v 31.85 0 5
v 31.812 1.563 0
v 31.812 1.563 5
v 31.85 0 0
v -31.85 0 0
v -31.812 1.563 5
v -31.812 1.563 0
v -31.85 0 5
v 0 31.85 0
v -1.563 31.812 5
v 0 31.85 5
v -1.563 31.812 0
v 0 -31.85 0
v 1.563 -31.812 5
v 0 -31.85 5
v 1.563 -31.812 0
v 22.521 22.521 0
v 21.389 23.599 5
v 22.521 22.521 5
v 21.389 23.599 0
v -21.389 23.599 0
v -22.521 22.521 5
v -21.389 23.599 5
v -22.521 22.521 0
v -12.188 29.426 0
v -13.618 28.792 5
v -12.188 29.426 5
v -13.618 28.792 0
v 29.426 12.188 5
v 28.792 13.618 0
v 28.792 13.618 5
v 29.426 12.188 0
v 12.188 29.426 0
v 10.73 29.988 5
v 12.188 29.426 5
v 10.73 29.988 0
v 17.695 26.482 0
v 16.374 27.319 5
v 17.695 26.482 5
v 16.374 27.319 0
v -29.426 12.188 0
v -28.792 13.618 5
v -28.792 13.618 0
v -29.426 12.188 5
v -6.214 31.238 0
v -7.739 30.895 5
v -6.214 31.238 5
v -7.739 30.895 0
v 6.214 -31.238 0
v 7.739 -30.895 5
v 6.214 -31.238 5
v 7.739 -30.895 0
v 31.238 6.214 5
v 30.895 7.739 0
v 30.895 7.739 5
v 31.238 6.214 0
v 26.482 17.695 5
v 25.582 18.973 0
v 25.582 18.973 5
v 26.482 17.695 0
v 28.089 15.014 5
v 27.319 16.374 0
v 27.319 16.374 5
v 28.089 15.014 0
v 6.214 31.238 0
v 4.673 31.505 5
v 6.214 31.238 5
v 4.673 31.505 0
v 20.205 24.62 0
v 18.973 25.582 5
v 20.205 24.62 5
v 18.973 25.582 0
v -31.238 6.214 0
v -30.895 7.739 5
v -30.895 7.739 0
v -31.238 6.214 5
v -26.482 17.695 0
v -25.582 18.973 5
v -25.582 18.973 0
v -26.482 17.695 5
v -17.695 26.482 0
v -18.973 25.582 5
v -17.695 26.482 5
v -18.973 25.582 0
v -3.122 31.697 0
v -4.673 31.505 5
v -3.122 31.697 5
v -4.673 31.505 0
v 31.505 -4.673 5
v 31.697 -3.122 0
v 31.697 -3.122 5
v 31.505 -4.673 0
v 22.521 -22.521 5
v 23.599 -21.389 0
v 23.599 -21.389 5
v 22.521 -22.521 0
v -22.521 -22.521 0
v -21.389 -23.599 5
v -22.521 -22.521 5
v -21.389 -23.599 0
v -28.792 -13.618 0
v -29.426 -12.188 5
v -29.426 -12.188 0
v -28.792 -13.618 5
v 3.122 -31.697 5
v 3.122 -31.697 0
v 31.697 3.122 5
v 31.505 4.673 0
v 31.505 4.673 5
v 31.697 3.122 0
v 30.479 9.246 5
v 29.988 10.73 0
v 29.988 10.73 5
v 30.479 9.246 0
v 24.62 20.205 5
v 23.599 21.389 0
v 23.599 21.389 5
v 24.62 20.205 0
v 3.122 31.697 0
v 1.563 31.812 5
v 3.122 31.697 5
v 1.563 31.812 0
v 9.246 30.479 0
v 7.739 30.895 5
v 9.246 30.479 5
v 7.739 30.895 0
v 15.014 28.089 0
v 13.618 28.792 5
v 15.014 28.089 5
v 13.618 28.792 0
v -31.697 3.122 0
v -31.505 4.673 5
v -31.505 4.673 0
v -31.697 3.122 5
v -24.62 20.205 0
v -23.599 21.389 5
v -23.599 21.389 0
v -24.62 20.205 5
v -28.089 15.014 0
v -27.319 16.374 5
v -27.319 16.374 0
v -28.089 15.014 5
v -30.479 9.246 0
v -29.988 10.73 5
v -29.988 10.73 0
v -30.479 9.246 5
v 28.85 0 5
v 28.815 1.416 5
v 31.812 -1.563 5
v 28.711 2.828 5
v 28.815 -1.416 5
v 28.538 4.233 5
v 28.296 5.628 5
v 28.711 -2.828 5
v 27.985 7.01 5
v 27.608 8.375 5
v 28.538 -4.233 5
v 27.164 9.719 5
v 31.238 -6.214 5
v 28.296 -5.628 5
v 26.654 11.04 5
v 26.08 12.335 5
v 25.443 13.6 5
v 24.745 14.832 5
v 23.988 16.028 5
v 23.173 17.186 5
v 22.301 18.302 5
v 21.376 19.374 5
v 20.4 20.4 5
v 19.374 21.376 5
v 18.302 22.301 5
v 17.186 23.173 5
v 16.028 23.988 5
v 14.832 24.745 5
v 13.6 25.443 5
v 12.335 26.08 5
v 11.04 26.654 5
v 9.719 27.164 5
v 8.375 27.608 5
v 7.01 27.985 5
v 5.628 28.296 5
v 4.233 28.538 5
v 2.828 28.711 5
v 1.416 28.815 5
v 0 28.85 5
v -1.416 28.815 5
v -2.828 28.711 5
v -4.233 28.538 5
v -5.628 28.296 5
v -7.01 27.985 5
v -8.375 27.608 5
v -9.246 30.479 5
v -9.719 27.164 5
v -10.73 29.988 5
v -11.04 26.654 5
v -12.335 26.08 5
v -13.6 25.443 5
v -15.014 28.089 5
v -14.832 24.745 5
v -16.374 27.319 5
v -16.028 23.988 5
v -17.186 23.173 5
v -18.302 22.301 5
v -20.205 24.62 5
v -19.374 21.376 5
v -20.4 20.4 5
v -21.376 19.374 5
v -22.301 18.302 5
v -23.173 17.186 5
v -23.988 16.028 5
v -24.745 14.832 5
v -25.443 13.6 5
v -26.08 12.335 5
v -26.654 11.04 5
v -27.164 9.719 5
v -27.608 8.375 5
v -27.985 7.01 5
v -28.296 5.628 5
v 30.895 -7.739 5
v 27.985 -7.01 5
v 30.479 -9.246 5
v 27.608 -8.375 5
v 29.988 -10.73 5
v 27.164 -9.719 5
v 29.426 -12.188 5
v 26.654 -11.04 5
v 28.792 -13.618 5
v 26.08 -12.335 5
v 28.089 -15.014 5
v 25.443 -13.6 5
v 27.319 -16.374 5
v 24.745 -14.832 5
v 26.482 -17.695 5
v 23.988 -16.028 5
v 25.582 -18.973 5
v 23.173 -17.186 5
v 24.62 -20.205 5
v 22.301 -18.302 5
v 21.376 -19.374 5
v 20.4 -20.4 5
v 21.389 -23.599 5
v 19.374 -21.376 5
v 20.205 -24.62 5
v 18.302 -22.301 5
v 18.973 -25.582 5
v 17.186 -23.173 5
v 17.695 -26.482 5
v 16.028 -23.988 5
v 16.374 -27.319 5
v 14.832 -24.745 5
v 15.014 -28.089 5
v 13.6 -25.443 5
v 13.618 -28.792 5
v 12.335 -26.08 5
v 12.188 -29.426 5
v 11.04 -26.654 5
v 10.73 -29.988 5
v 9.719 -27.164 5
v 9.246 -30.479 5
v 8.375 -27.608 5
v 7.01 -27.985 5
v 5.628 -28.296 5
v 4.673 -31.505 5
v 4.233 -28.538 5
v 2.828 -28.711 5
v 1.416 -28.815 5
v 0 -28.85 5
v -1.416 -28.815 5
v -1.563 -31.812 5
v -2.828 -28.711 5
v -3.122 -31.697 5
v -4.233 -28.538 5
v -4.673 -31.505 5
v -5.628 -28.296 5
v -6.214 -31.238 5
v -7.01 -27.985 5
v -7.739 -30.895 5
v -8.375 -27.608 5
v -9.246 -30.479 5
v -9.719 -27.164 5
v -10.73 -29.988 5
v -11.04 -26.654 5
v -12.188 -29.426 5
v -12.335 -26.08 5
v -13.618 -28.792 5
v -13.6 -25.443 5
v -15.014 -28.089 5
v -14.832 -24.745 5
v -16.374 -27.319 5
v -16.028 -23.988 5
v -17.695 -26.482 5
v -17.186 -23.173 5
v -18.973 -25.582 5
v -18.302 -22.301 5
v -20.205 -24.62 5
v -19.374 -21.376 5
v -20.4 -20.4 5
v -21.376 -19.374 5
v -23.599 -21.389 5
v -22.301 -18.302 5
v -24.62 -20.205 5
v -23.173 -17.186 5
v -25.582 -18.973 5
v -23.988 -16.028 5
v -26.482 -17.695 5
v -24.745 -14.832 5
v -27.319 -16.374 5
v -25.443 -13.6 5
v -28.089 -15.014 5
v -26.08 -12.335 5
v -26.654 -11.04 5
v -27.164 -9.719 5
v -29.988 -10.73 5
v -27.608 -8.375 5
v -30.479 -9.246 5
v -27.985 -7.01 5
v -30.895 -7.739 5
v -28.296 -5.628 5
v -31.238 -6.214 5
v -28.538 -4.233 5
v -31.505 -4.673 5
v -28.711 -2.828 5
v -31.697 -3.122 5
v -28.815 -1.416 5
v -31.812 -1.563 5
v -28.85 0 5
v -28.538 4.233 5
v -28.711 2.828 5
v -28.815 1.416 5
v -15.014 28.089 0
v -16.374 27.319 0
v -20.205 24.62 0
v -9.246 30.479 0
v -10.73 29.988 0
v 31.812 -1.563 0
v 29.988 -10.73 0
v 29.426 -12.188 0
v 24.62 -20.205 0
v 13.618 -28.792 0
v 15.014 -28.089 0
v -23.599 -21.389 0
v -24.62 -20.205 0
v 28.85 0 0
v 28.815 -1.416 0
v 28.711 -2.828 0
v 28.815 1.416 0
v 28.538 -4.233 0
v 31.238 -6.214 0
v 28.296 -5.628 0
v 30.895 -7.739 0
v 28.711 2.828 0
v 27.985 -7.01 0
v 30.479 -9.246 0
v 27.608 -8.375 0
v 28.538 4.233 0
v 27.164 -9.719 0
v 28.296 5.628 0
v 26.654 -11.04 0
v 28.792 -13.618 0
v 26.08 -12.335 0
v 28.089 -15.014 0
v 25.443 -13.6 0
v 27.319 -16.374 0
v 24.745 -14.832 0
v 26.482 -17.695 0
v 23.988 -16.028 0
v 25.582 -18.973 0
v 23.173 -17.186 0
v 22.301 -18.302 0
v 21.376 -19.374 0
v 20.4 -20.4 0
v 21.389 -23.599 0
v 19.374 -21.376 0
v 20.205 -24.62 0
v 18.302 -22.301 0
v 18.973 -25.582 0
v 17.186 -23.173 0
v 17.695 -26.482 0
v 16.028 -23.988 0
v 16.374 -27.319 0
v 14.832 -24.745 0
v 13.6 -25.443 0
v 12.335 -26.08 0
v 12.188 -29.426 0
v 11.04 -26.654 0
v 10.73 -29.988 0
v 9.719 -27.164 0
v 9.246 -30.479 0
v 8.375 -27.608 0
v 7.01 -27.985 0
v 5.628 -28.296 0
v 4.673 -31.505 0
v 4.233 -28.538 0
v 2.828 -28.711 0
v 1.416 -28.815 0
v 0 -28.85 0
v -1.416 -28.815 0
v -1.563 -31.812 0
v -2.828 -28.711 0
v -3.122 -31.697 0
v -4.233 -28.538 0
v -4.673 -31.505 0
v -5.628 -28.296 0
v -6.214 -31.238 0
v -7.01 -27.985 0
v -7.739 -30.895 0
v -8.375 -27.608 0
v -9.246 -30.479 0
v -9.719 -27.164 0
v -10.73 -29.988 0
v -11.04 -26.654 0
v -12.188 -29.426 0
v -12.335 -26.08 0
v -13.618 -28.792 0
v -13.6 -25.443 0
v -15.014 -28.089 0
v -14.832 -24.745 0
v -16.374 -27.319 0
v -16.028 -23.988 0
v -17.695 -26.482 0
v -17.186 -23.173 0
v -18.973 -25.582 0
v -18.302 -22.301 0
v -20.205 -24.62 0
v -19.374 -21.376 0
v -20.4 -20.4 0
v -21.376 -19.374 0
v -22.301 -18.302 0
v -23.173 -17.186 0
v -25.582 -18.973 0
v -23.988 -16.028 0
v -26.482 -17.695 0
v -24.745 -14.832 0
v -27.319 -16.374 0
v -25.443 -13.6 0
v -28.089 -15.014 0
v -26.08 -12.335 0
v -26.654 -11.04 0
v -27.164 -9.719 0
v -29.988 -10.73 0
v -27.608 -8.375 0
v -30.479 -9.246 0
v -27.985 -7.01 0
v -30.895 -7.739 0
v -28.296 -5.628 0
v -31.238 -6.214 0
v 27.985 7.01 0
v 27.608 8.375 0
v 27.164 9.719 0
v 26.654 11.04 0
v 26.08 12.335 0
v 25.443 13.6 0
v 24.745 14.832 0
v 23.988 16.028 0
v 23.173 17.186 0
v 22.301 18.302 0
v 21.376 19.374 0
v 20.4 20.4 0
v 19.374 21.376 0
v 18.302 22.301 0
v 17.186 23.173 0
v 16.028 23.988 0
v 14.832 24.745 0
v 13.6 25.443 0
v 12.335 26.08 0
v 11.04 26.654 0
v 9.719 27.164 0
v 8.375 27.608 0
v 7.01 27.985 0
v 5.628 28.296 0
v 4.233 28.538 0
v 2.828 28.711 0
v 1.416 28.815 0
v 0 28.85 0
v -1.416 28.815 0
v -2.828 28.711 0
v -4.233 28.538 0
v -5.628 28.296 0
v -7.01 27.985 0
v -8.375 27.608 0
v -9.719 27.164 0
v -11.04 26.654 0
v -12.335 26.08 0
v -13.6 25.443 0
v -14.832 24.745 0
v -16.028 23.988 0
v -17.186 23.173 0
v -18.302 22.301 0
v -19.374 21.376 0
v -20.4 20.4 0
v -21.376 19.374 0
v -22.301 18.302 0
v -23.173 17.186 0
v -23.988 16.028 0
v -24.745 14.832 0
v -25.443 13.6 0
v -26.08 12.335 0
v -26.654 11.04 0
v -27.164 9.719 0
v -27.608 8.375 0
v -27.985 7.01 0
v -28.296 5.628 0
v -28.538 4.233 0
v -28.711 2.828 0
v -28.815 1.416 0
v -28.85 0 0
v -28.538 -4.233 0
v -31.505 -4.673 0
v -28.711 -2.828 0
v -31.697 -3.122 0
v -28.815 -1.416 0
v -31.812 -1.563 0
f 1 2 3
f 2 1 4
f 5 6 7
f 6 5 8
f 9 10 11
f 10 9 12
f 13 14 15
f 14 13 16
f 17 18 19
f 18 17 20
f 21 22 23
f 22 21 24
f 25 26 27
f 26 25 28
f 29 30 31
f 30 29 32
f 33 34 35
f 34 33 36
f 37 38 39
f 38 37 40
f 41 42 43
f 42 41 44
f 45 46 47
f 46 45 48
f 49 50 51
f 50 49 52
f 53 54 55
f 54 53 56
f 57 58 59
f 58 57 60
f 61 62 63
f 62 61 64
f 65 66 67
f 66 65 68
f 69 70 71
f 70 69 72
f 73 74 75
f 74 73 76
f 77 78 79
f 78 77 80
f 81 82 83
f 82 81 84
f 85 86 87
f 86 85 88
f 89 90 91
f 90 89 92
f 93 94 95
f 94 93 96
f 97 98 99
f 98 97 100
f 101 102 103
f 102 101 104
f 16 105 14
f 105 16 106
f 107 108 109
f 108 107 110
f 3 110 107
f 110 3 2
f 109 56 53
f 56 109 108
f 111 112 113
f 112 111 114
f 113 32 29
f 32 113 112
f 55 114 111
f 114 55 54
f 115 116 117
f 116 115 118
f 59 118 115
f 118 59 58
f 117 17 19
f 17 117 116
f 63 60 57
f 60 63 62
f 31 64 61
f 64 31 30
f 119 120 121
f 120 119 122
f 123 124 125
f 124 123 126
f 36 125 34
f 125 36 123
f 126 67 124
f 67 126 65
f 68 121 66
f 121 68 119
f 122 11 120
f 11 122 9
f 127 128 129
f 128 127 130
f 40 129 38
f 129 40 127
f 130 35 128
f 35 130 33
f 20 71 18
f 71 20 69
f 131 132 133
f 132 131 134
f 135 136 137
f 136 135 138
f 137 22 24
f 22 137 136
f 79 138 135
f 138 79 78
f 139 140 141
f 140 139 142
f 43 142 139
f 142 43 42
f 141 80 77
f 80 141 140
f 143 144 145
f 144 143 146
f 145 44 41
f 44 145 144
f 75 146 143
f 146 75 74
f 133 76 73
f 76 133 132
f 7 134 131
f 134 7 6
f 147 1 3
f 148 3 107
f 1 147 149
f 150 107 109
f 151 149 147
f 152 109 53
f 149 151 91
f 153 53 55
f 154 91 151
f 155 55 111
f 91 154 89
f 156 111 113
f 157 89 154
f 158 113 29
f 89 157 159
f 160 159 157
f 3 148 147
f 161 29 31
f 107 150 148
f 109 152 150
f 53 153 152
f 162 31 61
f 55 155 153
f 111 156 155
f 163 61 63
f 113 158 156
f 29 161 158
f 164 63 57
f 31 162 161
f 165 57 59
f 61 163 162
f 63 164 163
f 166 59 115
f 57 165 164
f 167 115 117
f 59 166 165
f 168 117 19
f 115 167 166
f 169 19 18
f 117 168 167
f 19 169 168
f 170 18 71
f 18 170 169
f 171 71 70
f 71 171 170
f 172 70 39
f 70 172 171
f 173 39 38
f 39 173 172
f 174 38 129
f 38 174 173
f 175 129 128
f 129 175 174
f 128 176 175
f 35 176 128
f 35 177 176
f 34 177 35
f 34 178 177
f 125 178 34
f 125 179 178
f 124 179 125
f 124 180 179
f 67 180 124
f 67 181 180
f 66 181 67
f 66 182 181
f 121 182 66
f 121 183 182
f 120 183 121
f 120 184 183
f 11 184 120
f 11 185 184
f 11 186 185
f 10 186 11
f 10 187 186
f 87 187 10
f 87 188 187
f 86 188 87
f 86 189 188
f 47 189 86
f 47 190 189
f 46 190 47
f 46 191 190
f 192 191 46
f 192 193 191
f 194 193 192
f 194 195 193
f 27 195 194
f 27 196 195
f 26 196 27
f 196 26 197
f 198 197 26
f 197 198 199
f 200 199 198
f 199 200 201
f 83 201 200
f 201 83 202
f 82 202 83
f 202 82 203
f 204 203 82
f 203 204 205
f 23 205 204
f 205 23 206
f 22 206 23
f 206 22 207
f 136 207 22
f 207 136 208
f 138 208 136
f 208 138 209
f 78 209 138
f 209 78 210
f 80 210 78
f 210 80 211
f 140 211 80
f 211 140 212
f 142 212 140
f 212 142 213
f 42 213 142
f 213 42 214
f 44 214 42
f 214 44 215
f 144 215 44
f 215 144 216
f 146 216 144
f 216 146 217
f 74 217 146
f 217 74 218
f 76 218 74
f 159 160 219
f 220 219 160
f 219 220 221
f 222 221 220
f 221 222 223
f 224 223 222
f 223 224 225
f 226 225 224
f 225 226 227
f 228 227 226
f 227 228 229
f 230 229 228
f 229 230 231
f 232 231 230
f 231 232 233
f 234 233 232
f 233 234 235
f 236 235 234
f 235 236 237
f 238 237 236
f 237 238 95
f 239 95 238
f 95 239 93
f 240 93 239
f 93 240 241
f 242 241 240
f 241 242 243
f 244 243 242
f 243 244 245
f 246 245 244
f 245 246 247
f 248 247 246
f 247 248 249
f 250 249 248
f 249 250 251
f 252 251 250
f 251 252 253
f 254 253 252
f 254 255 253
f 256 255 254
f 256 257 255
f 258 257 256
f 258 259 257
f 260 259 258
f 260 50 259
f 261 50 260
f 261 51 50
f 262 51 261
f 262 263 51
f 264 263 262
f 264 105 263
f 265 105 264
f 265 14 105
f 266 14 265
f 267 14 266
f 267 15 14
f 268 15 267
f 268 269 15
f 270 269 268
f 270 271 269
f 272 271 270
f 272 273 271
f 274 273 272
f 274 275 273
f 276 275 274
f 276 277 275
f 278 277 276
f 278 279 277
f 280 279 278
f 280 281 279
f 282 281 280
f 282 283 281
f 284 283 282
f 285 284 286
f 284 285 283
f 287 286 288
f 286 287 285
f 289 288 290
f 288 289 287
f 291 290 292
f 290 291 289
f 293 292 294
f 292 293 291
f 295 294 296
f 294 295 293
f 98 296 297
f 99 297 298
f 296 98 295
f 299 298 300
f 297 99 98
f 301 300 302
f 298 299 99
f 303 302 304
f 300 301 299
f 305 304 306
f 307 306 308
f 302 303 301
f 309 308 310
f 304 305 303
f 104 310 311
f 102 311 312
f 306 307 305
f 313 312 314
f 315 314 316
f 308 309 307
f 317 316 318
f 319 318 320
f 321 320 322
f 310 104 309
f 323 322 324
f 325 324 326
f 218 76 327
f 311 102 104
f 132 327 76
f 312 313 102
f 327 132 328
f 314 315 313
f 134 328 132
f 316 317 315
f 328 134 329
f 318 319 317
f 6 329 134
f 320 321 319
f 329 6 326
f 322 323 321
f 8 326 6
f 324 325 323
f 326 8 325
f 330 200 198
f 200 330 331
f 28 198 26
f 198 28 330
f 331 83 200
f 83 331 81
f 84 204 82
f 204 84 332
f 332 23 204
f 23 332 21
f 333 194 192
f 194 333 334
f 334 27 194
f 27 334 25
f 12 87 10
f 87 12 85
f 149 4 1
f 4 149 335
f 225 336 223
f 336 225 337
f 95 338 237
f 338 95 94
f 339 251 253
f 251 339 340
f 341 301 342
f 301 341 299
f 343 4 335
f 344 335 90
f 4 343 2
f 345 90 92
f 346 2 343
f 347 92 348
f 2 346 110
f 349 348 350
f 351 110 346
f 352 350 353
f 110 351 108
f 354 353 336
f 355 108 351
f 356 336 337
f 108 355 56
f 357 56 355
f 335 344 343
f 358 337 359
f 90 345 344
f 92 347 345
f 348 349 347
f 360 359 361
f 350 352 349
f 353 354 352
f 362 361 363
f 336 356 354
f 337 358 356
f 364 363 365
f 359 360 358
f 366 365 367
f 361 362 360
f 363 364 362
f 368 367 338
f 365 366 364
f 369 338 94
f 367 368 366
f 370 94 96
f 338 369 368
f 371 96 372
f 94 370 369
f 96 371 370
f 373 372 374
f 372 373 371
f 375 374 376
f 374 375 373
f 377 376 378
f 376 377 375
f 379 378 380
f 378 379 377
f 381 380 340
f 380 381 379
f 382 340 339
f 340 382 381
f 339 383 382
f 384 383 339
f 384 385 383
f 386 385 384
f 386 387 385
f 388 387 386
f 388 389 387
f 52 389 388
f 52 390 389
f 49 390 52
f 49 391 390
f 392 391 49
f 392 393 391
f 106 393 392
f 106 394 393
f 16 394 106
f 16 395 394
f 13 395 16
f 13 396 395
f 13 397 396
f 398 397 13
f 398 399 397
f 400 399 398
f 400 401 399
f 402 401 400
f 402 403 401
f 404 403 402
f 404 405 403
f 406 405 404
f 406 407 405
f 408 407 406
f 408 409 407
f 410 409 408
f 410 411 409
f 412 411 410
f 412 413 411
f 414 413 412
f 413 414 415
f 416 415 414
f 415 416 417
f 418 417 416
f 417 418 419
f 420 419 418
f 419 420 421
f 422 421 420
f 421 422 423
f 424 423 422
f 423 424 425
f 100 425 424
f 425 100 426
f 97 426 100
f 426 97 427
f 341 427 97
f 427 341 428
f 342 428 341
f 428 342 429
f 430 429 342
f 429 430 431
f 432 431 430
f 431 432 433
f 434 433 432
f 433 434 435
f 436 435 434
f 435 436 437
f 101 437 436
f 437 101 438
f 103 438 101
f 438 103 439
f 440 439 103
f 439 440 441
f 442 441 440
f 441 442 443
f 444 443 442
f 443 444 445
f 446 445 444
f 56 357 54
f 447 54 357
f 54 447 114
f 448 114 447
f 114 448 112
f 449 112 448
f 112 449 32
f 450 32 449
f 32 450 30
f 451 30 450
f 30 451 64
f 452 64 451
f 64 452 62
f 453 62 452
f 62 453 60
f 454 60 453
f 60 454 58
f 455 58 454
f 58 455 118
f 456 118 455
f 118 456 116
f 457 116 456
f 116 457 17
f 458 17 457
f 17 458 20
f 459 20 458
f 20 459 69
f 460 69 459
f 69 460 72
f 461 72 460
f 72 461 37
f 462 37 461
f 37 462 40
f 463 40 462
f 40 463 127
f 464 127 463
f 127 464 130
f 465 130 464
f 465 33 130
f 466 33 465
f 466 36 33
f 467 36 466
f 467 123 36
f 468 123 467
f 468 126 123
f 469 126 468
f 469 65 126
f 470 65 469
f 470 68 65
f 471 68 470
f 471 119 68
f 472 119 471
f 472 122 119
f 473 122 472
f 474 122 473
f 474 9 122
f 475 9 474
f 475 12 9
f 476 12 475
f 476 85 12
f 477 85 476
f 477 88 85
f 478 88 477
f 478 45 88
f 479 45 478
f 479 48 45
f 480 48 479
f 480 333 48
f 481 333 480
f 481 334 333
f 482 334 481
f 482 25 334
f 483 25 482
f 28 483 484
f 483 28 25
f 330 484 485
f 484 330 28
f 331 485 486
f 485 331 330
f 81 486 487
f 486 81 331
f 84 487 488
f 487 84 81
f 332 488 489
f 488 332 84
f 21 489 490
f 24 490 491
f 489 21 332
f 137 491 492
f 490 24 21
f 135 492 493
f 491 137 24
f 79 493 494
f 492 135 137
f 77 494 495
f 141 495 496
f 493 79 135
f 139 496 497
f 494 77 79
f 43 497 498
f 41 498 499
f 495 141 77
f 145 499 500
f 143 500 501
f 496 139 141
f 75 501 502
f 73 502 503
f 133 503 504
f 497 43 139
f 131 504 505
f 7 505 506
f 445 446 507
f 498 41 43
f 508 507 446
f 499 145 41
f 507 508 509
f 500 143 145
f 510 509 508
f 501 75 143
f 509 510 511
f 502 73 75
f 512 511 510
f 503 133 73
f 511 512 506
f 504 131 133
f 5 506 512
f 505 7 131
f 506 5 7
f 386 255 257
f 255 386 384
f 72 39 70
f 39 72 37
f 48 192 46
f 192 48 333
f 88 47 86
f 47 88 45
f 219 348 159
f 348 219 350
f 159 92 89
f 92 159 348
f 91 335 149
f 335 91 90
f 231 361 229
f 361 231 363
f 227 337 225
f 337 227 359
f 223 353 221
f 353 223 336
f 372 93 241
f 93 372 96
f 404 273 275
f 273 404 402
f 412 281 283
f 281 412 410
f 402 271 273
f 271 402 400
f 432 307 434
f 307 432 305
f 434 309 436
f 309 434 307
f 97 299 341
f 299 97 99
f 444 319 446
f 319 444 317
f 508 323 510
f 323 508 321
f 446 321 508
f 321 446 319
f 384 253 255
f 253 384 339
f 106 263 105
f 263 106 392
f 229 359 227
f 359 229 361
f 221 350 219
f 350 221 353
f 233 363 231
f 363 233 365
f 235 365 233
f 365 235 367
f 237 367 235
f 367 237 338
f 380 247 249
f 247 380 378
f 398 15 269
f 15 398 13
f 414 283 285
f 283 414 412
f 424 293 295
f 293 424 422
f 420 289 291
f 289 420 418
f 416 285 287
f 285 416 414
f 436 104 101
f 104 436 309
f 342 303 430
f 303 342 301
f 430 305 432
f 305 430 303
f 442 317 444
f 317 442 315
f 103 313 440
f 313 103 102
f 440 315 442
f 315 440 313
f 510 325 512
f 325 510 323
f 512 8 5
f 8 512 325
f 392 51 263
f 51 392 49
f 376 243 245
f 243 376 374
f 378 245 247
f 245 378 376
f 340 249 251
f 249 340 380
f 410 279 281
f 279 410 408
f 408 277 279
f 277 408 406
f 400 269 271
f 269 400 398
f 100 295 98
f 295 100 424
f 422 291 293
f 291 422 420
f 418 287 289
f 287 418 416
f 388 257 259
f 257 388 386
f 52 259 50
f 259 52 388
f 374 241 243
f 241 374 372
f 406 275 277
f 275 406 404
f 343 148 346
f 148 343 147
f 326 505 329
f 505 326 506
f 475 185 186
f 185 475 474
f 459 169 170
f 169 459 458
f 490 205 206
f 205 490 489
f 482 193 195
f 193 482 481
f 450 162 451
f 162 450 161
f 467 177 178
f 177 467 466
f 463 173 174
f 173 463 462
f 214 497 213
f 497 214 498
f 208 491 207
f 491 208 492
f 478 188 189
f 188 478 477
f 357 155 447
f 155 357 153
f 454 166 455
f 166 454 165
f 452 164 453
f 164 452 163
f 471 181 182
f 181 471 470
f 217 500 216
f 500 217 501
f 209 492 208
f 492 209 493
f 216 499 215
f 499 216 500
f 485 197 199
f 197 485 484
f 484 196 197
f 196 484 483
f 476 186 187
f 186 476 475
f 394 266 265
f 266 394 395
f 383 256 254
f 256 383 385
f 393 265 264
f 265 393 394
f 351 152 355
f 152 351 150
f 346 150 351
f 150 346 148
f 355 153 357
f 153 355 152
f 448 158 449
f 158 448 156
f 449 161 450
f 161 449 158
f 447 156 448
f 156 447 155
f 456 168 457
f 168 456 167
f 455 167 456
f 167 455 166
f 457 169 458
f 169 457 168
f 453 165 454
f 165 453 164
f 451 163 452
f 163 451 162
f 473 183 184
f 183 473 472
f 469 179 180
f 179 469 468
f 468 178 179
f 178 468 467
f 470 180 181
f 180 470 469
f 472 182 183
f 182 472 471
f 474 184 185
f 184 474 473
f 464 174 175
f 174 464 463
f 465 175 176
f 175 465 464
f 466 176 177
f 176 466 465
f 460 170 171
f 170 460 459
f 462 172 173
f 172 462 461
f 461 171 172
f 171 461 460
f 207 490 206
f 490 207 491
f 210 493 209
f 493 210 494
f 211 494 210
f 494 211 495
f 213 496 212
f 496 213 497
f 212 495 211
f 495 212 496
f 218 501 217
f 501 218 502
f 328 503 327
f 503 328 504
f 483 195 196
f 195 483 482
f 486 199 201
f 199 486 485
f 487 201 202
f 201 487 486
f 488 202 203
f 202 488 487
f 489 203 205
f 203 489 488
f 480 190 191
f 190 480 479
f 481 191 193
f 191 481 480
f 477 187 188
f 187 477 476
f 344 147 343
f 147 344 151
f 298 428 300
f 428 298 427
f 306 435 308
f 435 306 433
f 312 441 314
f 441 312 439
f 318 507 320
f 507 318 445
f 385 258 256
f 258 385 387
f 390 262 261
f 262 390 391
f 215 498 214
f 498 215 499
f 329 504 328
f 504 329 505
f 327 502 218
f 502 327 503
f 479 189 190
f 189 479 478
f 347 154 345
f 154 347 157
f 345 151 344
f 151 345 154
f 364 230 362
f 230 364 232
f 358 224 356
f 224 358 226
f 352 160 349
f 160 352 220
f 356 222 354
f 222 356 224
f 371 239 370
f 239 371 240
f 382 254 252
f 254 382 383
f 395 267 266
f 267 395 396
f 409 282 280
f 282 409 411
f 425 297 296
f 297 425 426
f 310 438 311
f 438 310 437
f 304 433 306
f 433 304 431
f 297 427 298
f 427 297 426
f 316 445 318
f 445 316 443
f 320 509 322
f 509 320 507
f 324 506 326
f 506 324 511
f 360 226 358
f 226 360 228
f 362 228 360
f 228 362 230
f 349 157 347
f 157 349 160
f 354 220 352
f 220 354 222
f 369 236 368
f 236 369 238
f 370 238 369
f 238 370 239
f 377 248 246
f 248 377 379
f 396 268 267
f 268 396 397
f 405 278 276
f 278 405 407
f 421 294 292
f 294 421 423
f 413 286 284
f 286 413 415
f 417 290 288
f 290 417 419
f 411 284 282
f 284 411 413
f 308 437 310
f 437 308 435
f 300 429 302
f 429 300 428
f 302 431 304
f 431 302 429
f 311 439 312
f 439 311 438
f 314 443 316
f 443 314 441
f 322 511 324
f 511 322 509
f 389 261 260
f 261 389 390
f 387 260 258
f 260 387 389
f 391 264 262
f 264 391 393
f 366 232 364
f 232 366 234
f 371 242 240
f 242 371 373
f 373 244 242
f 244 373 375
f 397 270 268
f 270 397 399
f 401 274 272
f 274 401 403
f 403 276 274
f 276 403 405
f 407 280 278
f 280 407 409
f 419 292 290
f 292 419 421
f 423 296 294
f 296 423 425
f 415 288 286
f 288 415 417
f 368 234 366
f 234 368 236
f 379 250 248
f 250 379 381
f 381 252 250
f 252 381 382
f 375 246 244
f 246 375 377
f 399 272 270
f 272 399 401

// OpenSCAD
// ============================================================
//  Test Ring
//  Use to verify fit before printing a full adapter.
//
//  Inner diameter : 57.7 mm
//  Wall thickness : 3.0 mm  →  outer diameter = 63.7 mm
//  Height         : 5.0 mm
// ============================================================

$fn = 128;

// ── Parameters ───────────────────────────────────────────────
ring_id = 57.7;
wall    = 3.0;
ring_od = ring_id + 2 * wall;  // 63.7 mm
height  = 5.0;

// ── Ring ─────────────────────────────────────────────────────
difference() {
    cylinder(h = height, d = ring_od);
    translate([0, 0, -0.1])
        cylinder(h = height + 0.2, d = ring_id);
}
